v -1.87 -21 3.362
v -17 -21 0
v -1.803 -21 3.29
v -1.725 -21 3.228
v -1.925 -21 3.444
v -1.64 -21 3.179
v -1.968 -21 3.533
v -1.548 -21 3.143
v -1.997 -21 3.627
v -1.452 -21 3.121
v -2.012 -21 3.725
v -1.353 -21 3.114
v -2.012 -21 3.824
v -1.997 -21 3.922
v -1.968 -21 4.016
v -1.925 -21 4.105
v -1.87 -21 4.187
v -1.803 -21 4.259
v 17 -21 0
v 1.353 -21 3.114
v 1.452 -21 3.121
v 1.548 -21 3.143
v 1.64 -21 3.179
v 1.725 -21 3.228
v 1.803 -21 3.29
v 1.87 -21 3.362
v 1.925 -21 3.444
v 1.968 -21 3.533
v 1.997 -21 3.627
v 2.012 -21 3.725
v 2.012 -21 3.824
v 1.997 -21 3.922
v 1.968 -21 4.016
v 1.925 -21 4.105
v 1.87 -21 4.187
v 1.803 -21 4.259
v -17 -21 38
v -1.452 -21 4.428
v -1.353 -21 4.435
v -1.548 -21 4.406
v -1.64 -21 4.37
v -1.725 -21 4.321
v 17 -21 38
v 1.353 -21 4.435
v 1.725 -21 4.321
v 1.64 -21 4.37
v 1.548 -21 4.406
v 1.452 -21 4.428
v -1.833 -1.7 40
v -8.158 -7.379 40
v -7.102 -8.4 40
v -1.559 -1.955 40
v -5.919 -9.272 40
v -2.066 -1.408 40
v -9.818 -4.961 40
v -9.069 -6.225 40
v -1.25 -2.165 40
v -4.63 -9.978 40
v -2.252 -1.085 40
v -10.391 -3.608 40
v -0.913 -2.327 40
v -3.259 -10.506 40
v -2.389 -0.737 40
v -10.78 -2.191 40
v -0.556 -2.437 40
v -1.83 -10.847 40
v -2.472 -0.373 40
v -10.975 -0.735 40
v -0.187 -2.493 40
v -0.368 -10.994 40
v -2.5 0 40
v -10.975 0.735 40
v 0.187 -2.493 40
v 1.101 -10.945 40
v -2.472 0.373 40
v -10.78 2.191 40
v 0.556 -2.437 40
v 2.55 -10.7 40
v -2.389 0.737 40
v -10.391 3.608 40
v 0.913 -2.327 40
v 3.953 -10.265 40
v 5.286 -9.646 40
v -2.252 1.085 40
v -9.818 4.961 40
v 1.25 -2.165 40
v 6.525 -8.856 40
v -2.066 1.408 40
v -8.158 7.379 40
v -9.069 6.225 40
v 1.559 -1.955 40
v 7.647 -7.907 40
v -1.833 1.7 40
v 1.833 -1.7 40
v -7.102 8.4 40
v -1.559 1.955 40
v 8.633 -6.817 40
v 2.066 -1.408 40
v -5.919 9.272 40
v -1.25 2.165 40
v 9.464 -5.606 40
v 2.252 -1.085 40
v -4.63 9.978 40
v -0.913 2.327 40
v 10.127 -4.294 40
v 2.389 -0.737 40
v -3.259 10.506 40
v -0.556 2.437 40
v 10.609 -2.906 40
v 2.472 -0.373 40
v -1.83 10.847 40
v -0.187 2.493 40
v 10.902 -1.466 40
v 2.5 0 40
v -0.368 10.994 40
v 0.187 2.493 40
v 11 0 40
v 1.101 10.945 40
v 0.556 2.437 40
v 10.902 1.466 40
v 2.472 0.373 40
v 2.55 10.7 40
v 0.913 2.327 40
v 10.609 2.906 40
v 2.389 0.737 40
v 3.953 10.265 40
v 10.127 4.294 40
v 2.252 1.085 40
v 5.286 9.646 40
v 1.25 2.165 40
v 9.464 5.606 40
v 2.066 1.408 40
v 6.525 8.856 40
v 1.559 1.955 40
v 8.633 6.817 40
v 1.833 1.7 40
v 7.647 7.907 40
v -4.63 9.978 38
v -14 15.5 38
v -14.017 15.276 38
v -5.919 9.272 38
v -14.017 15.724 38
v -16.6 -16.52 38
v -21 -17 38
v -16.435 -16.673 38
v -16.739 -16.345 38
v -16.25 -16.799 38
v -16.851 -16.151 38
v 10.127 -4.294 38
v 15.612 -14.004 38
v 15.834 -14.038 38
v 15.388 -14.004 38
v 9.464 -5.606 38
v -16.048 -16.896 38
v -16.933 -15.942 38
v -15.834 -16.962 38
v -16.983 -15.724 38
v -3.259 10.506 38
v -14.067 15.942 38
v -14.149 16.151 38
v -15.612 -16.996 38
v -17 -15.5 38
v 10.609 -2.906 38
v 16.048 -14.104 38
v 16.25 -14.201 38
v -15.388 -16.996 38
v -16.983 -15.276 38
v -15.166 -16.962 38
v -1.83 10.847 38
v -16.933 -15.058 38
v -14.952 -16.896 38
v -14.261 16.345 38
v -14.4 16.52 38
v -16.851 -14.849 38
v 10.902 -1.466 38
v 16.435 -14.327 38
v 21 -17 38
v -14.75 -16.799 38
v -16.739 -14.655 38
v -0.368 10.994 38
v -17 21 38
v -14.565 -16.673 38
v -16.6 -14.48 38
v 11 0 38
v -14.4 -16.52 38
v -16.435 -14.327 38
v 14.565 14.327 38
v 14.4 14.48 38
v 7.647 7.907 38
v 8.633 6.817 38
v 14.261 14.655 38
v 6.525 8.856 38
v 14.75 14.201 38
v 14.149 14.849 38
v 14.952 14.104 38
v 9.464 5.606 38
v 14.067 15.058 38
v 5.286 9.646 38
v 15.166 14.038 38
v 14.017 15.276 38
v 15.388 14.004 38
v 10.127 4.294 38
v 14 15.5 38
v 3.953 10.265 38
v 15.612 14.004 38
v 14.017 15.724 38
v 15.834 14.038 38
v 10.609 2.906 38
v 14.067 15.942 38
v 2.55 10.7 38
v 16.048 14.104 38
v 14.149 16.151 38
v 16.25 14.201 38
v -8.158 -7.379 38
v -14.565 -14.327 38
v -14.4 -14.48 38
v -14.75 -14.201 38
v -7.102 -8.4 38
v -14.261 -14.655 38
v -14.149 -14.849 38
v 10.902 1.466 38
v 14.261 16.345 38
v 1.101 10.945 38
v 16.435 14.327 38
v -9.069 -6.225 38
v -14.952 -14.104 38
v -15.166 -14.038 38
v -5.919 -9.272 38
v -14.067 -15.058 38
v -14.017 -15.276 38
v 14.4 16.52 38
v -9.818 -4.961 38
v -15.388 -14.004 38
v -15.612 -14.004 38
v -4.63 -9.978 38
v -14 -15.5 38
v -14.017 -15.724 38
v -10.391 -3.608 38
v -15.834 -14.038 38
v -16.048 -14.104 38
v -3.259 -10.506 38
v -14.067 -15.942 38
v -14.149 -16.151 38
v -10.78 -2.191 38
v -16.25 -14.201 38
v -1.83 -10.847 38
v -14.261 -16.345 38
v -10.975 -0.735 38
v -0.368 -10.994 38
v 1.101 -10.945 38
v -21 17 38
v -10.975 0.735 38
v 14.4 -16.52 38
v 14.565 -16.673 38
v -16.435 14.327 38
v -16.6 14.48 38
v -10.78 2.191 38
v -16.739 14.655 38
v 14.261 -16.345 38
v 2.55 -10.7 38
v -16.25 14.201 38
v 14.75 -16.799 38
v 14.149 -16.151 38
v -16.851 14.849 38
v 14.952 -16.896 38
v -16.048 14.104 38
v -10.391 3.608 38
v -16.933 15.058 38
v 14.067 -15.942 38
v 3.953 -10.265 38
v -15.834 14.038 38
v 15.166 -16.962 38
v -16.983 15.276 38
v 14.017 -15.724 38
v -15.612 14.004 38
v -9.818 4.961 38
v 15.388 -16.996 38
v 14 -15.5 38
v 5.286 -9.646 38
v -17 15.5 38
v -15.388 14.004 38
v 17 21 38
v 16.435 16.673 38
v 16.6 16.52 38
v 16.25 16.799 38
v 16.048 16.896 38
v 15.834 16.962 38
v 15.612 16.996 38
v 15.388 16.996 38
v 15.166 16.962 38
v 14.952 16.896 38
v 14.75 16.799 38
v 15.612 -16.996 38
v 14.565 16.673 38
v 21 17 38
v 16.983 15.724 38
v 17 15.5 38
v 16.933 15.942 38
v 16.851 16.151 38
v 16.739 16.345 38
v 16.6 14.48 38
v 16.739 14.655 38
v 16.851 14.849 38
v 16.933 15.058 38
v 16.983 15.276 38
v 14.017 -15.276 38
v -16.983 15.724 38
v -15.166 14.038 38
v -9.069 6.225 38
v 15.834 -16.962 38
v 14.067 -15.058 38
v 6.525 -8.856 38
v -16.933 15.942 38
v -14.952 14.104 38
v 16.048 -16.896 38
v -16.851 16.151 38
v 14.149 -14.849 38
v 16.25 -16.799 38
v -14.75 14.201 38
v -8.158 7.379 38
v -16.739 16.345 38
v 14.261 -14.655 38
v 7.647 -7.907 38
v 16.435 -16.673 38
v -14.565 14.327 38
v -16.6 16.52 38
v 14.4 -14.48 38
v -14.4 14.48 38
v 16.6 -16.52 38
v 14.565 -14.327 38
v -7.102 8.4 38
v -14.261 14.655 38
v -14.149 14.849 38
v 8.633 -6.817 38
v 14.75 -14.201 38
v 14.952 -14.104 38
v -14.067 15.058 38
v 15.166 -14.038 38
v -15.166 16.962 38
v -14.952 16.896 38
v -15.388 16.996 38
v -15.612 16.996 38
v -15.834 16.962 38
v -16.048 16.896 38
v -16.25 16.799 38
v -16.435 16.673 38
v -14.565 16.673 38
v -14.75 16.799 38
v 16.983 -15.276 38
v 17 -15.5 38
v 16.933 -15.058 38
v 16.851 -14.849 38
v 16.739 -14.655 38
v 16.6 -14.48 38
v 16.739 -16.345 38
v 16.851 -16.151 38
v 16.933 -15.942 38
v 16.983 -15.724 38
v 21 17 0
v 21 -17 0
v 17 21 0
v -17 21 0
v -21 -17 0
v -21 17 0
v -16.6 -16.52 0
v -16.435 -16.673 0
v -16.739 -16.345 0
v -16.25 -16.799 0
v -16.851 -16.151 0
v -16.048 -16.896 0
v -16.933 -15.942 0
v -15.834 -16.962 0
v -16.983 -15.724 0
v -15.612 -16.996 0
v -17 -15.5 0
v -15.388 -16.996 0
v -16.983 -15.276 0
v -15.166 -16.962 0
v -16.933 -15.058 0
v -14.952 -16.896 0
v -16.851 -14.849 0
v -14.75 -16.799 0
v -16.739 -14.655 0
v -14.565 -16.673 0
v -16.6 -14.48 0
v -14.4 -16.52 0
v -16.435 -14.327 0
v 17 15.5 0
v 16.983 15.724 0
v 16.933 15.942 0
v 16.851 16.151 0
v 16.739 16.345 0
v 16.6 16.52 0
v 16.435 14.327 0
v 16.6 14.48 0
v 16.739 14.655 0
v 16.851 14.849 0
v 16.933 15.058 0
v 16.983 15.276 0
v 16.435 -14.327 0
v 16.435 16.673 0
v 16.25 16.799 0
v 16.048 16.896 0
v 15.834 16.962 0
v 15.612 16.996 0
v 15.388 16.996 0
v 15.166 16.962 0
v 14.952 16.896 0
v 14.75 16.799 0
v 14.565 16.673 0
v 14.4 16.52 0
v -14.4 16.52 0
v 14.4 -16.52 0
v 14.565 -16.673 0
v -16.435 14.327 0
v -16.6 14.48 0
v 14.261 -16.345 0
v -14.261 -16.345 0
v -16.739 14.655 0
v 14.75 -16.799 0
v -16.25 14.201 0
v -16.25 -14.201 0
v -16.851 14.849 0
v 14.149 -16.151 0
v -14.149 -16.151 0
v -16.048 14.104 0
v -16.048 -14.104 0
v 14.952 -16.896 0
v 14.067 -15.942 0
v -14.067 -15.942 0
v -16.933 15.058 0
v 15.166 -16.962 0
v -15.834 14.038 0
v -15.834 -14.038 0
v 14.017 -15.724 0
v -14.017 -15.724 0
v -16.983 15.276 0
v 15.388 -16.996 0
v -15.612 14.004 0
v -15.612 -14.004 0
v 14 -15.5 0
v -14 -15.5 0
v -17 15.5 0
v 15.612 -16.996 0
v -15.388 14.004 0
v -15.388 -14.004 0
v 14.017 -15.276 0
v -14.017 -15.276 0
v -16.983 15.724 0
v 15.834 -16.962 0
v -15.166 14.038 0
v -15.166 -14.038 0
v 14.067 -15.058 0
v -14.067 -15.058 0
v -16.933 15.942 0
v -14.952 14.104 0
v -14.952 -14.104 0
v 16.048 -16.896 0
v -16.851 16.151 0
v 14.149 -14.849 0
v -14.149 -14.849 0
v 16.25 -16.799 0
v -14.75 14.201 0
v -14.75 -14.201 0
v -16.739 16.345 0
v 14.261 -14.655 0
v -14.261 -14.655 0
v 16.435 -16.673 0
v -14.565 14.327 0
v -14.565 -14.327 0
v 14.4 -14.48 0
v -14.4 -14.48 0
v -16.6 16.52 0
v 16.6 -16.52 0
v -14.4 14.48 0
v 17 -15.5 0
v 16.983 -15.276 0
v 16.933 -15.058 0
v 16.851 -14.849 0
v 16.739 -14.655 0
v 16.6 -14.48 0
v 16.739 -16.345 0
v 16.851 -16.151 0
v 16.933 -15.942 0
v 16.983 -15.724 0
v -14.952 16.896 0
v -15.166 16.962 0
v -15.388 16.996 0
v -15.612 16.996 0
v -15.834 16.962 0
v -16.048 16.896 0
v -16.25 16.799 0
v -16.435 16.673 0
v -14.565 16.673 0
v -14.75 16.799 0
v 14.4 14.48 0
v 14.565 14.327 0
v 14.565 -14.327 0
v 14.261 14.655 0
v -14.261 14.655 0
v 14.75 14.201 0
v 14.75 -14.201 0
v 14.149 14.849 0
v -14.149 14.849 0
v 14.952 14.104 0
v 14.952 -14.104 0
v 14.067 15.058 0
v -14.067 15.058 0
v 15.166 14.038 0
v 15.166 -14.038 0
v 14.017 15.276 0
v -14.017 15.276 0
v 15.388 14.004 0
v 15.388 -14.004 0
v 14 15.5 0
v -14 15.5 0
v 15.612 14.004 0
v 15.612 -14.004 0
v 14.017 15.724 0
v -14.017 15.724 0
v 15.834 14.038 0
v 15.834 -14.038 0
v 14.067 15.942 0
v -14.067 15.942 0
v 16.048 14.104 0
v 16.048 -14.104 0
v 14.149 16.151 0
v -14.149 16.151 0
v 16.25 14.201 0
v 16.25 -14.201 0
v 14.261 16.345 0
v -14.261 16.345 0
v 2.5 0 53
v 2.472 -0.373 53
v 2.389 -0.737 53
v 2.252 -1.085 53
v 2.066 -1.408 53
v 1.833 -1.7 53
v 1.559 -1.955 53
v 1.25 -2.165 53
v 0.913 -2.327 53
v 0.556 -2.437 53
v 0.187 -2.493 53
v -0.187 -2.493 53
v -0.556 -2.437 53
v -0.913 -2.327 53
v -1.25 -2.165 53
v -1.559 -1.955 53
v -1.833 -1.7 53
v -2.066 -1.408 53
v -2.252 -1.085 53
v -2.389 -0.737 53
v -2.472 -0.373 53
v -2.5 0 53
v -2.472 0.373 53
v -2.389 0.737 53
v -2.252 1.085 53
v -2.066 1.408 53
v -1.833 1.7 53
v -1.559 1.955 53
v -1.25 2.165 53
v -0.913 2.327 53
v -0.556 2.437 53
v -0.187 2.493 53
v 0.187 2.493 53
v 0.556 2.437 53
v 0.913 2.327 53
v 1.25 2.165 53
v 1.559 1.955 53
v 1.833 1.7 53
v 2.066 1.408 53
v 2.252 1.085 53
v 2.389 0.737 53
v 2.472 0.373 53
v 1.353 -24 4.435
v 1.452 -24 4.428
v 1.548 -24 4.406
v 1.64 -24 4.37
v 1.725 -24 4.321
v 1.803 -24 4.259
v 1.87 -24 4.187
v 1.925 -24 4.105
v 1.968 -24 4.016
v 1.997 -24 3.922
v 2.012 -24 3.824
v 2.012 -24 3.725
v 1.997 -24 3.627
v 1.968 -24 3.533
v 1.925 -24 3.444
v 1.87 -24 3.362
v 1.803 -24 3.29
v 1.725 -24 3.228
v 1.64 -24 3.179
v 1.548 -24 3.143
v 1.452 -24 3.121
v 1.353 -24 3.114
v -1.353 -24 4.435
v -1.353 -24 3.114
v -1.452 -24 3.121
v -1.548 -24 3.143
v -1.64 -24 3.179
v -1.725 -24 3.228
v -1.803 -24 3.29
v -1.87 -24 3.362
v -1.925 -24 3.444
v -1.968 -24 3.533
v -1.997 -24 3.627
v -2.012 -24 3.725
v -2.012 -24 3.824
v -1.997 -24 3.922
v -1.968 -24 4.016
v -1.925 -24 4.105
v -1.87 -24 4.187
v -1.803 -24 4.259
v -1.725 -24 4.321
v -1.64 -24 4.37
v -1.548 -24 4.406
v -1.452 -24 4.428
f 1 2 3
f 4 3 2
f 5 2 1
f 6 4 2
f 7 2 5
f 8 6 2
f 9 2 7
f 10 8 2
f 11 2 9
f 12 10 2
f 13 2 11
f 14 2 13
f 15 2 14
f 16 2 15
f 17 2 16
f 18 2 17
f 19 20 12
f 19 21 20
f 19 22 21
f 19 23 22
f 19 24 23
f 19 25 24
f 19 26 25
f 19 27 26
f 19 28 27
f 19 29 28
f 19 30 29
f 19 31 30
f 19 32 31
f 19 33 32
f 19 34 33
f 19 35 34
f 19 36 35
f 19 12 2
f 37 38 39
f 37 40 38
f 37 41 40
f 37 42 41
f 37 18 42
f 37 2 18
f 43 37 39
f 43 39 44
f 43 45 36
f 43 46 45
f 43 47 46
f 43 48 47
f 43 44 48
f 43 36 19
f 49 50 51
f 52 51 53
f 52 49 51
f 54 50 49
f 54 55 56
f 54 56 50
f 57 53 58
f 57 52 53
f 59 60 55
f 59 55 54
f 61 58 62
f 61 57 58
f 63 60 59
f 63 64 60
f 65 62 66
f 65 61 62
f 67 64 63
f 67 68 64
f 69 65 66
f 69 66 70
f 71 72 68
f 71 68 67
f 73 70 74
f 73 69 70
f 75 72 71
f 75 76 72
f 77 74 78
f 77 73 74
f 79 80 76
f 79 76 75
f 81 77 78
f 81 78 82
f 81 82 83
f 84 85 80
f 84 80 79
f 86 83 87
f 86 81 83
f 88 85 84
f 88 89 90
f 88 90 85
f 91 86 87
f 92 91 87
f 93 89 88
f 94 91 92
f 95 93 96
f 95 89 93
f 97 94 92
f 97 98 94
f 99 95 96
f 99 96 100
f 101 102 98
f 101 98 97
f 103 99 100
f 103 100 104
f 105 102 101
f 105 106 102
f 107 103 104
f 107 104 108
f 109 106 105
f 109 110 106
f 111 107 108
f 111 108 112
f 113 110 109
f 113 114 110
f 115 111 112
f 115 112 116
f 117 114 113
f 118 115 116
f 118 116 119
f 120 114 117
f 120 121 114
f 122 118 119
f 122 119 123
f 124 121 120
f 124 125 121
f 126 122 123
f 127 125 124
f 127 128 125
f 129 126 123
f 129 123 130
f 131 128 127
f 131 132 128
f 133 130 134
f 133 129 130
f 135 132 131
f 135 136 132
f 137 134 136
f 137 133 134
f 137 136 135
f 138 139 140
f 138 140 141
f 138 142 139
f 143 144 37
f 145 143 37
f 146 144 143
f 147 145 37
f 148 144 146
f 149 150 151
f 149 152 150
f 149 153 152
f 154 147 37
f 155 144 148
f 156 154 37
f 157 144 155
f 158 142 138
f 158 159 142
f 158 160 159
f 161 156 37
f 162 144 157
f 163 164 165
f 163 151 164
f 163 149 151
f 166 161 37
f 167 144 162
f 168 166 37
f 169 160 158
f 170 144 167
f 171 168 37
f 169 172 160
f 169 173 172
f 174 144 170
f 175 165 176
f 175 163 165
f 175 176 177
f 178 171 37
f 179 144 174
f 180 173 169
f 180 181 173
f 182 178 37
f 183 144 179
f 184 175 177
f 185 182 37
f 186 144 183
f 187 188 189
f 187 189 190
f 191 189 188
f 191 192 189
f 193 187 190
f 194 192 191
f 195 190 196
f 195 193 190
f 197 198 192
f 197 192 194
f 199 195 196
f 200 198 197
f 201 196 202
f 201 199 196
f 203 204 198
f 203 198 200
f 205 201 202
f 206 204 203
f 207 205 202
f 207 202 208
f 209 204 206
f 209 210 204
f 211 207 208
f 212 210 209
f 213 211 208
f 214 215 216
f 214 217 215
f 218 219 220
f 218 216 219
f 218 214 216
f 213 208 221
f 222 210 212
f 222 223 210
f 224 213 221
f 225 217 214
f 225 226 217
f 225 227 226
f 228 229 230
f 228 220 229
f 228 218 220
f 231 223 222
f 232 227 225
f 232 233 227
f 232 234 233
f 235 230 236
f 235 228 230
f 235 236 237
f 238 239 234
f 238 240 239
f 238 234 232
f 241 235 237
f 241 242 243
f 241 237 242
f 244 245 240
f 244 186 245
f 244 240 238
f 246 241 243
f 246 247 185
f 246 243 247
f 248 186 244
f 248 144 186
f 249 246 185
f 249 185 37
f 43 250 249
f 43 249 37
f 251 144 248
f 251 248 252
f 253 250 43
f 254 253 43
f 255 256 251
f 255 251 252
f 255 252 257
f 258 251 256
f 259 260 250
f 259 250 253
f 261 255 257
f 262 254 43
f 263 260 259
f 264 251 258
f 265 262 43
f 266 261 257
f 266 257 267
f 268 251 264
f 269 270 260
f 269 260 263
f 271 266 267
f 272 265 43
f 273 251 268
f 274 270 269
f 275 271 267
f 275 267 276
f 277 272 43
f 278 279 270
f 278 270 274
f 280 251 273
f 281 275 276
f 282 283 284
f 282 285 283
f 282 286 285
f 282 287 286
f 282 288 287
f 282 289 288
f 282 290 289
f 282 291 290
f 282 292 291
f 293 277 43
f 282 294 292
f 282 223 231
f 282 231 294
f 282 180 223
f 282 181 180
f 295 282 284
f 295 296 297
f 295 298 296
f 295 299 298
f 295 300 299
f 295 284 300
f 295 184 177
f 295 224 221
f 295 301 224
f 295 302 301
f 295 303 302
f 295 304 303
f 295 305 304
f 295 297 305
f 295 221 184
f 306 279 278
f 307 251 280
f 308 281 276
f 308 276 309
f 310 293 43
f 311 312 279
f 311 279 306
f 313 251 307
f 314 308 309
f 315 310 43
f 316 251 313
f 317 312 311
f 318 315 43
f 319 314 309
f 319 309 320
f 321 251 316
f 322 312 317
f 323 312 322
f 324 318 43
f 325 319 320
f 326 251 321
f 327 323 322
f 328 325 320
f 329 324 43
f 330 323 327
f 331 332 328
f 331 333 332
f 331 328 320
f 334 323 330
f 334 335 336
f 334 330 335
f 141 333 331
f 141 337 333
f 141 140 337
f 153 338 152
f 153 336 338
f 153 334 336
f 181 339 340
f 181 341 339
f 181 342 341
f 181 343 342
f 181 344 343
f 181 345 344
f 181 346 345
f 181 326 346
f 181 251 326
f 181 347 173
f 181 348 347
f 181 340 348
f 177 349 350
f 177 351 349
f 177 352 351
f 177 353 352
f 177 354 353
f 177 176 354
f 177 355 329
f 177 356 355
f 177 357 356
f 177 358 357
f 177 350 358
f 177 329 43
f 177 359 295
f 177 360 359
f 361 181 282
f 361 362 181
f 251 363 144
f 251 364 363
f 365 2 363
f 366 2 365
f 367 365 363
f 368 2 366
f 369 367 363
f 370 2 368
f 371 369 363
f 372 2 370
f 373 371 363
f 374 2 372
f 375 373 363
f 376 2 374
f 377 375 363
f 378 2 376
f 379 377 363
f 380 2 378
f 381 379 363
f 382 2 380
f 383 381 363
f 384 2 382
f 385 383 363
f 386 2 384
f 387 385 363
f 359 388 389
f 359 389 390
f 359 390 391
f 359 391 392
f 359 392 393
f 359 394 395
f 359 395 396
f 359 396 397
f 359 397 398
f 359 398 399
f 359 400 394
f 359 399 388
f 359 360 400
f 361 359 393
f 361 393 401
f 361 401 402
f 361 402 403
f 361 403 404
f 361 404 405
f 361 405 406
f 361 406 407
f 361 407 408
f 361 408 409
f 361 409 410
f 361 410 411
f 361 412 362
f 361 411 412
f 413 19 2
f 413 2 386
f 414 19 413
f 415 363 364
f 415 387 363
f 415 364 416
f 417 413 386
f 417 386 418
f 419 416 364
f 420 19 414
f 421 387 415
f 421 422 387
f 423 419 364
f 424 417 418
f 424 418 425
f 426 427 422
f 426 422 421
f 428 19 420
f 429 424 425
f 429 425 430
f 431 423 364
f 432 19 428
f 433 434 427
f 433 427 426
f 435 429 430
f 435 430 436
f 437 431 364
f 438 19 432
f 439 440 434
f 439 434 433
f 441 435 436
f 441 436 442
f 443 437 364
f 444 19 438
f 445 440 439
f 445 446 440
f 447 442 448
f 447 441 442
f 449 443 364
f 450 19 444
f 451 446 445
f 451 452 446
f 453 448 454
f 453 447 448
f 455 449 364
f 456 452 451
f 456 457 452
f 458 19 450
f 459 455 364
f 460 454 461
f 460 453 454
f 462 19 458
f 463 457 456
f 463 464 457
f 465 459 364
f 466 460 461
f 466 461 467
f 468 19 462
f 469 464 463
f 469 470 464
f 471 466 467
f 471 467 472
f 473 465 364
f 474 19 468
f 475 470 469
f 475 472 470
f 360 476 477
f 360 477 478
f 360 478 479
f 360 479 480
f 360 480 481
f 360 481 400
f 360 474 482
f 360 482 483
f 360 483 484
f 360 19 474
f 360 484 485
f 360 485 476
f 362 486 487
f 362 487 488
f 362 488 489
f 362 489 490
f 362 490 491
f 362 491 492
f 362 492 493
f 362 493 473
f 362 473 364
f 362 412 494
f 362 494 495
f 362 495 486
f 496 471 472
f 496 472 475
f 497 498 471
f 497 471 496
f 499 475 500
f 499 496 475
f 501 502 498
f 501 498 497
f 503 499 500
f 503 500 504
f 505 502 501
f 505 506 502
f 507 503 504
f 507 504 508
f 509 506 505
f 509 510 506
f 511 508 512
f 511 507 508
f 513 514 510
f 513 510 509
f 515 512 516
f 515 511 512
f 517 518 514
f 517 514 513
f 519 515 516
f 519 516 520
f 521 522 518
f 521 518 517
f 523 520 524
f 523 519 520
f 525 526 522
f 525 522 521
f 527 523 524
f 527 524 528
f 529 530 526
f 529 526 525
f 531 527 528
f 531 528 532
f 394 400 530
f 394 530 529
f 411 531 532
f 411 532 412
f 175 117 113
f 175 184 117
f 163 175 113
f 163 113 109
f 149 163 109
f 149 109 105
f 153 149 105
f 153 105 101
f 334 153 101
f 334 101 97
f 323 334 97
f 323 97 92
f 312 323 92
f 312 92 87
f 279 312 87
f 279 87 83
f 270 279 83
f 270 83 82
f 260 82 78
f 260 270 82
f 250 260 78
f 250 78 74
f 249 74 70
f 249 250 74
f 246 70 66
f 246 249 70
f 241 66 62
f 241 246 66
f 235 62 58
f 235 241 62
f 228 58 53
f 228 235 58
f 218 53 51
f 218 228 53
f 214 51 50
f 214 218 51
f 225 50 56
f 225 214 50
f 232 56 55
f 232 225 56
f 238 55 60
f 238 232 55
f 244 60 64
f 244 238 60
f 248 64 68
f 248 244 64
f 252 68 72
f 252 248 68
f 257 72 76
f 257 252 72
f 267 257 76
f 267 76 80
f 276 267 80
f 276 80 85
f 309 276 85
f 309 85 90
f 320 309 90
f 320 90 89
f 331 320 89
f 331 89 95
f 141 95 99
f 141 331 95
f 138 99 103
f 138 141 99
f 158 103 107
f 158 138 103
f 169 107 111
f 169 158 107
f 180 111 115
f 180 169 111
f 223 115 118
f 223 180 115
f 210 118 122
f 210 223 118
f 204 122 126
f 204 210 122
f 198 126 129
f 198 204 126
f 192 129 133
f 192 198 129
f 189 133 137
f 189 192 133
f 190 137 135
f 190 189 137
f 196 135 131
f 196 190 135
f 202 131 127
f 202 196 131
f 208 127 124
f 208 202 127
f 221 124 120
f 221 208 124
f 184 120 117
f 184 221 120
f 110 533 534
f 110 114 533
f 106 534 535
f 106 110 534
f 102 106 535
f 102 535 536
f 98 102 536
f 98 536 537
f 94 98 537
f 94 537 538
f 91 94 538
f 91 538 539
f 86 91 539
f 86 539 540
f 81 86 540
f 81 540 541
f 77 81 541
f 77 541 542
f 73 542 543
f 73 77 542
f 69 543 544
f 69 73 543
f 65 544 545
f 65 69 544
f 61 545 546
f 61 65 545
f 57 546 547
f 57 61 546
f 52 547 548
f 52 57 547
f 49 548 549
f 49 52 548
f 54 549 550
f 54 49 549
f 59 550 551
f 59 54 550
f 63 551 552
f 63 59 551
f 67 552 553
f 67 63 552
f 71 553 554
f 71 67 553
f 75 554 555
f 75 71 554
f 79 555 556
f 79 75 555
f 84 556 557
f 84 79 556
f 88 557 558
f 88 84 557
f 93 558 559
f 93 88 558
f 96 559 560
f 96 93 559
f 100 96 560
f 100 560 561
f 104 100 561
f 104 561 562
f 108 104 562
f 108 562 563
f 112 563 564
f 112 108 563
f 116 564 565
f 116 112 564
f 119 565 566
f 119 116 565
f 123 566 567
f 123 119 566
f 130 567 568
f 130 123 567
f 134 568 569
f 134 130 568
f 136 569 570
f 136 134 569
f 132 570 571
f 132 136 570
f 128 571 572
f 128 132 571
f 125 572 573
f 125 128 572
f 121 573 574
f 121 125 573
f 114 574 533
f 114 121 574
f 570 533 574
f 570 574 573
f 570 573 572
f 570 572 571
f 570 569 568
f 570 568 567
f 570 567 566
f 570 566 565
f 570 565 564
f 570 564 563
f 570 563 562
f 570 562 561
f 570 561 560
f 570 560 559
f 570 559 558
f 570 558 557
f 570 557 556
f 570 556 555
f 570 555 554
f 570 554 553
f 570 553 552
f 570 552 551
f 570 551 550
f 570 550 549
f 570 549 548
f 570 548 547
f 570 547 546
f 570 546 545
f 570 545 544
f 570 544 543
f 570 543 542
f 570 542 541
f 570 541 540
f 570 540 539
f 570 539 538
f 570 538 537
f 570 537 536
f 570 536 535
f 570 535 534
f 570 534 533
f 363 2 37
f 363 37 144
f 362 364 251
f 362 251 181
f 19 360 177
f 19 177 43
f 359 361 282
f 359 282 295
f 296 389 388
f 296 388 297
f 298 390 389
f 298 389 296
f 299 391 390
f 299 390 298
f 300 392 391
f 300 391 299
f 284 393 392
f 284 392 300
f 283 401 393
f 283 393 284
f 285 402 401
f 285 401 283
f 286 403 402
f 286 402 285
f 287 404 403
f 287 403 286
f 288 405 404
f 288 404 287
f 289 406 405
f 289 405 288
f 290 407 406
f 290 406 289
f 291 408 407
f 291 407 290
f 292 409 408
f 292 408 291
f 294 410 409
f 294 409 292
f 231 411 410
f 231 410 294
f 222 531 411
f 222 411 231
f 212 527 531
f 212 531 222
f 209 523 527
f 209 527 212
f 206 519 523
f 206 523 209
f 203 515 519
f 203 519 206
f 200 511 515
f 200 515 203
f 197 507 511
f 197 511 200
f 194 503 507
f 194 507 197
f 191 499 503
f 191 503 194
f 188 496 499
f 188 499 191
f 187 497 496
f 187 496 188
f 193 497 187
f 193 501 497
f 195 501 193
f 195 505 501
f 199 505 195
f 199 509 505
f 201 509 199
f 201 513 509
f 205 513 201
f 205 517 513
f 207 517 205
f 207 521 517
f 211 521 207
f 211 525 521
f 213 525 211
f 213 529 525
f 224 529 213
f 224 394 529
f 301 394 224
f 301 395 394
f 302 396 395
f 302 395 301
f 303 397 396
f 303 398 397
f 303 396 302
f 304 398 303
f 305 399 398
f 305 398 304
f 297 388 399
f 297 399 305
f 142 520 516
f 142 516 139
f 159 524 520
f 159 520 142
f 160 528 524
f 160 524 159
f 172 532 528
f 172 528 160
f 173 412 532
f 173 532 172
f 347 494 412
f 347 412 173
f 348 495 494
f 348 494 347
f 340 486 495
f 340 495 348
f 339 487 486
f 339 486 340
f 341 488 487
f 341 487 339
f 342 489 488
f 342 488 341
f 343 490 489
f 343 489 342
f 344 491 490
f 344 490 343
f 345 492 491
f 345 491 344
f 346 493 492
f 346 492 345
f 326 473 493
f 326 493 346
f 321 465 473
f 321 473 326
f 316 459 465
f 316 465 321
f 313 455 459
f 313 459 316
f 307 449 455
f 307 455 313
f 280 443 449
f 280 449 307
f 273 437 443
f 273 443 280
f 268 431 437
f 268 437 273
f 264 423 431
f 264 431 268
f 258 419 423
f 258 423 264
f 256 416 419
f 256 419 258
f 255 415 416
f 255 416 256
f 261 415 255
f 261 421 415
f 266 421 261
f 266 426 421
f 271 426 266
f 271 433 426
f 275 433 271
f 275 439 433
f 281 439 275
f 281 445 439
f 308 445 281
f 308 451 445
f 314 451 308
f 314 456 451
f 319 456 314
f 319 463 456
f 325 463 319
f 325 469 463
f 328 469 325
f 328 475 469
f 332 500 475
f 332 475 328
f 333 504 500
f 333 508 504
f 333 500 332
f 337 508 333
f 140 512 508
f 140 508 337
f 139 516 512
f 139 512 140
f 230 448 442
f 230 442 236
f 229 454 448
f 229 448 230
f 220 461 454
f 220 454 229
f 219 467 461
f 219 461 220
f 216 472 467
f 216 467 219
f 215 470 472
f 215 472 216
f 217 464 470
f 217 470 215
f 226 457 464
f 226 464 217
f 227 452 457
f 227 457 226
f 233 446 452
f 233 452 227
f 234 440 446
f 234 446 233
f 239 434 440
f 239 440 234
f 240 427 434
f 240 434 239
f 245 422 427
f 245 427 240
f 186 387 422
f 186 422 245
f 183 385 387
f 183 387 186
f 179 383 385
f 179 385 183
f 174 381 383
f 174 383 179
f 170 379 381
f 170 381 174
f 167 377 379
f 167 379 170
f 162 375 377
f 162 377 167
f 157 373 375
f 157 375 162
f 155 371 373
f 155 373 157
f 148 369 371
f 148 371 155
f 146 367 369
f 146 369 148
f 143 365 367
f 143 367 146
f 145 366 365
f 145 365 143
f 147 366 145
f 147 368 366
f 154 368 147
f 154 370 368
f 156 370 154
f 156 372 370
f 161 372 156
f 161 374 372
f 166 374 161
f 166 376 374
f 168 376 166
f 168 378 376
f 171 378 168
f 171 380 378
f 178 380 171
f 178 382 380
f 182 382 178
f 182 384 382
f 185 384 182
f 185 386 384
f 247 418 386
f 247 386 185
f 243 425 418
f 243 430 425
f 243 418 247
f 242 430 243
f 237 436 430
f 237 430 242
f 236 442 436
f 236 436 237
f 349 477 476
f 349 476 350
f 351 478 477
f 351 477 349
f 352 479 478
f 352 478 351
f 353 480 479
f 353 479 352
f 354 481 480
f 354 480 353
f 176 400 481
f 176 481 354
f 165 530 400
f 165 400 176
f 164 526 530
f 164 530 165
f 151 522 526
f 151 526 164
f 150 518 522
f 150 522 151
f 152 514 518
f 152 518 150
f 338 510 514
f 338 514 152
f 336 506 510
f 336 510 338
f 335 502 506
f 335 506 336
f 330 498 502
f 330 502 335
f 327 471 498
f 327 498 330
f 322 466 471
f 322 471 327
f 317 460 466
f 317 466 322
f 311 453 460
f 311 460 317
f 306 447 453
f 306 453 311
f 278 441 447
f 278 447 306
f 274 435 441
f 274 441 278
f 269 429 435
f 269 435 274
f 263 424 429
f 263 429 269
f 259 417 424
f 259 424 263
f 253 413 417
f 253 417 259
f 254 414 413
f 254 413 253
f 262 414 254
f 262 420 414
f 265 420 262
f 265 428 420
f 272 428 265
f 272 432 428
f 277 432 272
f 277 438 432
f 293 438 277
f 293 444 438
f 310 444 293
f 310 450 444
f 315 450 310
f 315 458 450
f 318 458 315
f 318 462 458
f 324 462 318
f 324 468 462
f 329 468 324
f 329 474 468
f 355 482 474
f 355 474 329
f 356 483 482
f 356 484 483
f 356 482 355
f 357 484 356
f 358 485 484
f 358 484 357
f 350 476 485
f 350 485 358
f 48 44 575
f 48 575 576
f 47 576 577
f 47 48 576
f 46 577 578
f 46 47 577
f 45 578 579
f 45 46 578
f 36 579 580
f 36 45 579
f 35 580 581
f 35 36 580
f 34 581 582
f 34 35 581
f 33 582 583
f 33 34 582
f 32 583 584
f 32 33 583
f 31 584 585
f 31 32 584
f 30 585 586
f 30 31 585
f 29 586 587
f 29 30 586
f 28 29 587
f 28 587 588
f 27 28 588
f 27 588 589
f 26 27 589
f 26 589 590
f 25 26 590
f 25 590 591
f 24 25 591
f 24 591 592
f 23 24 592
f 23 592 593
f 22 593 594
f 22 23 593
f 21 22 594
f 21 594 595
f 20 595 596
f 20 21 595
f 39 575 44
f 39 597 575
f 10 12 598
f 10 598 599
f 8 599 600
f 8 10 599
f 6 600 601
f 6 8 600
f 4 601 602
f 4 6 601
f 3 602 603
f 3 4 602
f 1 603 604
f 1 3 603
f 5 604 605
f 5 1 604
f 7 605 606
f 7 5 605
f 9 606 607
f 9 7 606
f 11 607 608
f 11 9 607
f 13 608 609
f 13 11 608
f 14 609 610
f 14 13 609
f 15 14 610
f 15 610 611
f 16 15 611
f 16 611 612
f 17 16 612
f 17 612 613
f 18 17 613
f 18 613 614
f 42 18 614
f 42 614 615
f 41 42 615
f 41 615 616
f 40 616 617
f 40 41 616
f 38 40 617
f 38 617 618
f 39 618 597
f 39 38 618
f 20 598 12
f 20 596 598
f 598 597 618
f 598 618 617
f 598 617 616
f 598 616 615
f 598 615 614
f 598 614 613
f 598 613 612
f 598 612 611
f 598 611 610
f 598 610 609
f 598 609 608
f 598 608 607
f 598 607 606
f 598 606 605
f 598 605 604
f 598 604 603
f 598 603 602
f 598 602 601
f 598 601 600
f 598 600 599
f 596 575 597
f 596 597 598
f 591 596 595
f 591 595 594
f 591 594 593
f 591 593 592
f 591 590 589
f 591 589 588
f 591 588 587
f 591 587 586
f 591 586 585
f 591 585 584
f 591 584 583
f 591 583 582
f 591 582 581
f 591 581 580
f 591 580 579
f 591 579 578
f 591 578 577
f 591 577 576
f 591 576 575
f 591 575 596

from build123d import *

# Parameters (mm, degrees)
CROQUIS1_W              = 42
CROQUIS1_H              = 42
SALIENTE_EXTRUIR1_DEPTH = 38
CROQUIS2_R              = 11
SALIENTE_EXTRUIR2_DEPTH = 2
CROQUIS3_R              = 2.5
SALIENTE_EXTRUIR3_DEPTH = 13
CHAFL_N1_SIZE           = 4
CROQUIS4_R              = 1.5
CORTAR_EXTRUIR1_DEPTH   = 49.228622207
SALIENTE_EXTRUIR4_DEPTH = 3


with BuildPart() as part:
    # Croquis1 → Saliente-Extruir1 (new body)
    with BuildSketch(Plane.XY):
        Rectangle(CROQUIS1_W, CROQUIS1_H)
    extrude(amount=SALIENTE_EXTRUIR1_DEPTH)

    # Croquis2 → Saliente-Extruir2 (add)
    with BuildSketch(Plane.XY.offset(38)):
        Circle(CROQUIS2_R)
    extrude(amount=SALIENTE_EXTRUIR2_DEPTH)

    # Croquis3 → Saliente-Extruir3 (add)
    with BuildSketch(Plane.XY.offset(40)):
        with Locations(Location((0, 0, 0), (0, 0, 180))):
            Circle(CROQUIS3_R)
    extrude(amount=SALIENTE_EXTRUIR3_DEPTH)

    # Chaflán1
    chafl_n1_edges = [part.edges().sort_by_distance(p)[0] for p in [
        (21, -21, 19),
        (-21, -21, 19),
        (-21, 21, 19),
        (21, 21, 19),
    ]]
    chamfer(chafl_n1_edges, length=CHAFL_N1_SIZE)

    # Croquis4 → Cortar-Extruir1 (cut, through all)
    with BuildSketch(Plane.XY.offset(38)):
        with Locations((15.5, 15.5)):
            Circle(CROQUIS4_R)
        with Locations((-15.5, 15.5)):
            Circle(CROQUIS4_R)
        with Locations((-15.5, -15.5)):
            Circle(CROQUIS4_R)
        with Locations((15.5, -15.5)):
            Circle(CROQUIS4_R)
    extrude(amount=-CORTAR_EXTRUIR1_DEPTH, mode=Mode.SUBTRACT)

    # Croquis6 → Saliente-Extruir4 (add)
    with BuildSketch(Plane.XZ.offset(21)):
        with BuildLine():
            Line((1.353116467, 3.113624341), (-1.353116467, 3.113624341))
            ThreePointArc((-1.353116467, 3.113624341), (-2.014015037, 3.77452291), (-1.353116467, 4.43542148))
            Line((-1.353116467, 4.43542148), (1.353116467, 4.43542148))
            ThreePointArc((1.353116467, 4.43542148), (2.014015037, 3.77452291), (1.353116467, 3.113624341))
        make_face()
    extrude(amount=SALIENTE_EXTRUIR4_DEPTH)


solid = part.part
